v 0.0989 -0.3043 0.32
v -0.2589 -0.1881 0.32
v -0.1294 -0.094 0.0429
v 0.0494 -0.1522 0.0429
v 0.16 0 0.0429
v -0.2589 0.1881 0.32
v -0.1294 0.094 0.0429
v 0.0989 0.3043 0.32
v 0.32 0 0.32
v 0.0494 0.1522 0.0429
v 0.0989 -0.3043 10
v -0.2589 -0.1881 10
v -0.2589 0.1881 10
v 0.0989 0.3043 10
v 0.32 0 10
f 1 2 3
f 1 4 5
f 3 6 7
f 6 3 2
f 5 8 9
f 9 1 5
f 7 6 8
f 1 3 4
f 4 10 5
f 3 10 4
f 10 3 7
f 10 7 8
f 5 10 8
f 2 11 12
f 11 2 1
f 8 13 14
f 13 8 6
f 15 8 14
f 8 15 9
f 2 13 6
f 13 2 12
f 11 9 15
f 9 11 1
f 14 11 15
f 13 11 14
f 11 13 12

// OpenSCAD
module 075_PRP2540S() {
   color("Gold")
   //tip part 1
   translate([0,0,0.64/2])sphere(d=0.64);
   //tip part 2
   color("Gold")
   translate([0,0,0.64/2])cylinder(h=2,d=0.64,center=false);
   //shaft 
   color("Gold")
   translate([0,0,2])cylinder(h=8,d=0.64,center=false);
}
075_PRP2540S();
